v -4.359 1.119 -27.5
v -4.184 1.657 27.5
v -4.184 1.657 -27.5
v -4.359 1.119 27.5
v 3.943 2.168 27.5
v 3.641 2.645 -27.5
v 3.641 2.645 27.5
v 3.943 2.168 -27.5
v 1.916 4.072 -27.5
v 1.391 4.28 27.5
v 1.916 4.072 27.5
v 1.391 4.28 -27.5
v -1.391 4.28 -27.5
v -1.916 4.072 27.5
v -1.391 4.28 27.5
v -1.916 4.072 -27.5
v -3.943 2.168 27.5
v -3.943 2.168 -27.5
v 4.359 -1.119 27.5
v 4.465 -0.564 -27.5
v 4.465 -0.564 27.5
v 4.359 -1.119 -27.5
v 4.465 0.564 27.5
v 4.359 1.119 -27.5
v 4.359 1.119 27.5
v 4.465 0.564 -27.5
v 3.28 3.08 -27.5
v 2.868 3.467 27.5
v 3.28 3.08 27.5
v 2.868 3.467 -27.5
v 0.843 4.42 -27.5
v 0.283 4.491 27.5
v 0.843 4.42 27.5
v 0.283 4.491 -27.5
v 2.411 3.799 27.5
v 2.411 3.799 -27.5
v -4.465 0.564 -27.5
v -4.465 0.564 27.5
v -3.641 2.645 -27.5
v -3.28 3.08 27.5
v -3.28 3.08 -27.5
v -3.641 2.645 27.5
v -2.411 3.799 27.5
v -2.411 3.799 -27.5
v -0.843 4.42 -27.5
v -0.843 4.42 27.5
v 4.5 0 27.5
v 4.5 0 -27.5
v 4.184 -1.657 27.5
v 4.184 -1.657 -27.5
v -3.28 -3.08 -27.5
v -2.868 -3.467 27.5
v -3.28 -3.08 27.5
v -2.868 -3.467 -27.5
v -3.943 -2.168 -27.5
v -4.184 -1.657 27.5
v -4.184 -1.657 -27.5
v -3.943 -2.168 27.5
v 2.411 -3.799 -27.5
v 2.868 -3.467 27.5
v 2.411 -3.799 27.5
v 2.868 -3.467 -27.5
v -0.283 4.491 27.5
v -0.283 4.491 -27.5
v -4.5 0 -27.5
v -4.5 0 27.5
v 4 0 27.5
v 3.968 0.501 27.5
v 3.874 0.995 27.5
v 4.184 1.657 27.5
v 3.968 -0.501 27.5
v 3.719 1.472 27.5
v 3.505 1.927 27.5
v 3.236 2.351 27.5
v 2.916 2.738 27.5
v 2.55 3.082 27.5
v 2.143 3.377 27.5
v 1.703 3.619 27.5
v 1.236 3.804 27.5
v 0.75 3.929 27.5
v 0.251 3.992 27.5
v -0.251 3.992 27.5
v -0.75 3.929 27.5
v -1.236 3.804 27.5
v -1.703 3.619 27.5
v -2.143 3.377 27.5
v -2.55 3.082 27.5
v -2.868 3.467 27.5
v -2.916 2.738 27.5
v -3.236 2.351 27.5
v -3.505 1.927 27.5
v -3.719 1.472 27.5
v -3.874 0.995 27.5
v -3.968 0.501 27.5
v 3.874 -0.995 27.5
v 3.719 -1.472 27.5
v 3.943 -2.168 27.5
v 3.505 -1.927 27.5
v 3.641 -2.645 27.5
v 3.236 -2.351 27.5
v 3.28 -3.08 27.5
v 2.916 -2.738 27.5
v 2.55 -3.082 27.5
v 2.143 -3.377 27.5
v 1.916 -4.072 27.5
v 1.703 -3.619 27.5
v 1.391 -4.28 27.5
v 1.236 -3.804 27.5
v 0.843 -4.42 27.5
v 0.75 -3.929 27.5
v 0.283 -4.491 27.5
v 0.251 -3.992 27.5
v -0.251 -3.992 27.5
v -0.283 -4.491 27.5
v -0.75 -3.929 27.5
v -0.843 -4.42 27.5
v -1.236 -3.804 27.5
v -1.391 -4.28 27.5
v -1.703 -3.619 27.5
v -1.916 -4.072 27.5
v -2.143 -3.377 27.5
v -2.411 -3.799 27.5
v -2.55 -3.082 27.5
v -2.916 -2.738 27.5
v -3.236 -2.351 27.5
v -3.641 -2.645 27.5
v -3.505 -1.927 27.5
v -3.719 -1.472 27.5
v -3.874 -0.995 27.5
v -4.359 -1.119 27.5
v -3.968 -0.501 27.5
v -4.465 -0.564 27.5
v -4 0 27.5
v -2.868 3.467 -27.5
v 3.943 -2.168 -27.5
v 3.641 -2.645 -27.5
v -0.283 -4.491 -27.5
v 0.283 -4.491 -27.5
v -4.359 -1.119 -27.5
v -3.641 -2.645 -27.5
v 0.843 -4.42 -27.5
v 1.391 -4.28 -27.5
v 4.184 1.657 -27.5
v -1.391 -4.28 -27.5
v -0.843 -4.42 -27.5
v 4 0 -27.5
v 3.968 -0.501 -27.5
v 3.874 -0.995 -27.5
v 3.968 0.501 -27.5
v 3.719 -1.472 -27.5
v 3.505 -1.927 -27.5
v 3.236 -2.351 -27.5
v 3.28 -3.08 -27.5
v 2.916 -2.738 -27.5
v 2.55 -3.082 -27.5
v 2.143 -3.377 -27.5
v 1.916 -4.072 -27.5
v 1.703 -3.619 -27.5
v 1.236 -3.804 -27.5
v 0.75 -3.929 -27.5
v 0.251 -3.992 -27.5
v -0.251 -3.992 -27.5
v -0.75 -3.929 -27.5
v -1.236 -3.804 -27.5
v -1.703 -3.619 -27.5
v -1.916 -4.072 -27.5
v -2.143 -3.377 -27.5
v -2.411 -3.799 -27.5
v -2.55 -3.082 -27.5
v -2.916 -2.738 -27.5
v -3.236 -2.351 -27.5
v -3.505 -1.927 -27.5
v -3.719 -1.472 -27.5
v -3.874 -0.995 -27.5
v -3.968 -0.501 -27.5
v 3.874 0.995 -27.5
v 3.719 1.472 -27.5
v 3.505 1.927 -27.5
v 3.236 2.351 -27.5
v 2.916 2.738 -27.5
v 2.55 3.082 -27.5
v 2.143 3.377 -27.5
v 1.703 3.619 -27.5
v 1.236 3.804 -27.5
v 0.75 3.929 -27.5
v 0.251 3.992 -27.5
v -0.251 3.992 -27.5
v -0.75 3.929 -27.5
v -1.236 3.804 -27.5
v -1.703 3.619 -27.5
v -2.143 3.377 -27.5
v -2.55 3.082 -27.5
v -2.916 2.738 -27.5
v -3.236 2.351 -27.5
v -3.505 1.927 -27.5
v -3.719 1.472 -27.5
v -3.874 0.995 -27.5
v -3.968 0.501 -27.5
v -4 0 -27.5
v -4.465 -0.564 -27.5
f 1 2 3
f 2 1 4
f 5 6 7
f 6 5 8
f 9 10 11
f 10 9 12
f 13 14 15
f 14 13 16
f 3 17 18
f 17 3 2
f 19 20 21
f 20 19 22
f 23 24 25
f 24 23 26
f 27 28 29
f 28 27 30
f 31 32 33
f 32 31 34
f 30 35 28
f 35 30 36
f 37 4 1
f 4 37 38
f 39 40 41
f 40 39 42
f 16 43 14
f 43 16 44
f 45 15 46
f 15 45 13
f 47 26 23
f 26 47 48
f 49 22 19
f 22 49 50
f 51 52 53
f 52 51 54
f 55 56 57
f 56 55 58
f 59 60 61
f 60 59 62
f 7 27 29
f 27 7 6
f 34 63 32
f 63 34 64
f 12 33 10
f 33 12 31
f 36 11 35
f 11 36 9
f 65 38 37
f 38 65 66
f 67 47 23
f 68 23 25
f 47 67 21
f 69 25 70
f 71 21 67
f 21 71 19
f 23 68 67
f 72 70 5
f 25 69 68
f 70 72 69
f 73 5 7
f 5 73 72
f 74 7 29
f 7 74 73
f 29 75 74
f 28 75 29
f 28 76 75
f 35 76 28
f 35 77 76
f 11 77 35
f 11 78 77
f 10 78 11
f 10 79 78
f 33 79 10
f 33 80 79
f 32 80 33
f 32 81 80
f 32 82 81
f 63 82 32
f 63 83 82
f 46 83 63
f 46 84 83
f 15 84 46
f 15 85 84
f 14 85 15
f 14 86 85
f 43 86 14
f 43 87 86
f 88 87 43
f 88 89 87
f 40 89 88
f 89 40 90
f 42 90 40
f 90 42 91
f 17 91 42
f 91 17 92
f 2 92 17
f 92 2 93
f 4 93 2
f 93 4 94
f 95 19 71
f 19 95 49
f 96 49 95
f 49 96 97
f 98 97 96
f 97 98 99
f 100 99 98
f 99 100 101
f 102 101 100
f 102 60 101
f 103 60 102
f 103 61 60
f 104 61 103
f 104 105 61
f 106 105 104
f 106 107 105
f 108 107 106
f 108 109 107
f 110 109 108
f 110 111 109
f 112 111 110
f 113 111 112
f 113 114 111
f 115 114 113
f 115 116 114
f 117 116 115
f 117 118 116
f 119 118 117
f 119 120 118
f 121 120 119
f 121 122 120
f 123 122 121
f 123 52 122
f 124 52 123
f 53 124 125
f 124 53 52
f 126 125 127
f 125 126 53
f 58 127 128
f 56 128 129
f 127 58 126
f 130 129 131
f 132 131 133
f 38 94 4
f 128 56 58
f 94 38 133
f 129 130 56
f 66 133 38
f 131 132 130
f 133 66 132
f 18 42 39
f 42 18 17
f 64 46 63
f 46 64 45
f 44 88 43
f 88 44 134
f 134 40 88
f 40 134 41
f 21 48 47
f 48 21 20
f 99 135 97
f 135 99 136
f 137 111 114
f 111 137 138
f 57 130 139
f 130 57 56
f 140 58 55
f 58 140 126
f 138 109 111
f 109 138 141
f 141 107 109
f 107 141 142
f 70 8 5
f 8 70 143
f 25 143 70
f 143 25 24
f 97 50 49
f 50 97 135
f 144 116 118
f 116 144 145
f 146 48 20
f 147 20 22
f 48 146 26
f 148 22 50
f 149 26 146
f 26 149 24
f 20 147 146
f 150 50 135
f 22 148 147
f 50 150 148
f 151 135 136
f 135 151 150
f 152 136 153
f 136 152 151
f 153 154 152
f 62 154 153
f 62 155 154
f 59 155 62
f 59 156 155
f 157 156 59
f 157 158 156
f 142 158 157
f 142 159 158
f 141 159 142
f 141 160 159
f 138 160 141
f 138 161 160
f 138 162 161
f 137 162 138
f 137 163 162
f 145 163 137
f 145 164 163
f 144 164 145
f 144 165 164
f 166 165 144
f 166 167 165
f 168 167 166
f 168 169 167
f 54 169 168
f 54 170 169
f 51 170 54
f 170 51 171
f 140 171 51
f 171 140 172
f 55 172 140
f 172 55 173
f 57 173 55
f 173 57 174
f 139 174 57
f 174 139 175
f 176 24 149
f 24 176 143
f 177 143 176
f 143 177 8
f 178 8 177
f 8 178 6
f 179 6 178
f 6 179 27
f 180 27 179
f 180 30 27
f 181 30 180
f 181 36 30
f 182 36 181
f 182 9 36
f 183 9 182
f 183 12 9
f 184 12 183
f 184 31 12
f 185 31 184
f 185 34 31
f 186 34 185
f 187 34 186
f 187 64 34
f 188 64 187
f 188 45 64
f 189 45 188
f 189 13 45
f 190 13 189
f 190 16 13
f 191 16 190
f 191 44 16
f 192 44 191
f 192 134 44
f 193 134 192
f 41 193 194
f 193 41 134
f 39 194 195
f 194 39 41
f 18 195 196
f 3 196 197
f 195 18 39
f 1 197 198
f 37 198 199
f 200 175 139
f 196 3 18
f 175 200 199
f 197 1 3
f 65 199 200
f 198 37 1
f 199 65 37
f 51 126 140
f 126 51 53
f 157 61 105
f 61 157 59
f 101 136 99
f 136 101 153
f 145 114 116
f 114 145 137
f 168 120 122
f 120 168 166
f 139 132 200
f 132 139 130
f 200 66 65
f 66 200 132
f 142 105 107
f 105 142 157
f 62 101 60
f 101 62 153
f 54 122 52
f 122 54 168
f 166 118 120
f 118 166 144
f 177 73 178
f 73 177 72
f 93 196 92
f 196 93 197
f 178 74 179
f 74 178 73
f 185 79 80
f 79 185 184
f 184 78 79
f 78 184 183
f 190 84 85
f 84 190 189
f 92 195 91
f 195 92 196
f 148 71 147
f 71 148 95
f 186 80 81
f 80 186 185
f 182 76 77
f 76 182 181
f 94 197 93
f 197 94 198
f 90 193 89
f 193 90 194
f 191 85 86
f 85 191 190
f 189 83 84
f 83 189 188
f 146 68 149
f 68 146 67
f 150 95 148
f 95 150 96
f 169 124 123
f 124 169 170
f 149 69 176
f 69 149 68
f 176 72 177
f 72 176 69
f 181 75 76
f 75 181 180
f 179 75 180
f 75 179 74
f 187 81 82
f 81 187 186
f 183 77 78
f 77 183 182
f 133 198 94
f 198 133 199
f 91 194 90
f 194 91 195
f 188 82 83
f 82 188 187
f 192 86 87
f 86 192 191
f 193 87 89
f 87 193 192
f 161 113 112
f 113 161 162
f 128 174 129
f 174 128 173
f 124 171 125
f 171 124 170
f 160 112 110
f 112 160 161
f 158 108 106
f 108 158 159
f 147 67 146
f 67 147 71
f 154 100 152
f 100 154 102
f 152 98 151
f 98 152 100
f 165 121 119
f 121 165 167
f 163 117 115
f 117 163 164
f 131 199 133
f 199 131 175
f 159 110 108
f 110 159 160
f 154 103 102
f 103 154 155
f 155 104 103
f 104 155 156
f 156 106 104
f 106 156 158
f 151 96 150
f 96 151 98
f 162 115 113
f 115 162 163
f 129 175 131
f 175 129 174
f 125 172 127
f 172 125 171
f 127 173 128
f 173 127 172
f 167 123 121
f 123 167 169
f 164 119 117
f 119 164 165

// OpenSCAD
$fn = 50;


difference() {
	union() {
		translate(v = [0, 0, -27.5000000000]) {
			cylinder(h = 55, r = 4.5000000000);
		}
	}
	union() {
		translate(v = [0, 0, -100.0000000000]) {
			cylinder(h = 200, r = 4);
		}
	}
}
